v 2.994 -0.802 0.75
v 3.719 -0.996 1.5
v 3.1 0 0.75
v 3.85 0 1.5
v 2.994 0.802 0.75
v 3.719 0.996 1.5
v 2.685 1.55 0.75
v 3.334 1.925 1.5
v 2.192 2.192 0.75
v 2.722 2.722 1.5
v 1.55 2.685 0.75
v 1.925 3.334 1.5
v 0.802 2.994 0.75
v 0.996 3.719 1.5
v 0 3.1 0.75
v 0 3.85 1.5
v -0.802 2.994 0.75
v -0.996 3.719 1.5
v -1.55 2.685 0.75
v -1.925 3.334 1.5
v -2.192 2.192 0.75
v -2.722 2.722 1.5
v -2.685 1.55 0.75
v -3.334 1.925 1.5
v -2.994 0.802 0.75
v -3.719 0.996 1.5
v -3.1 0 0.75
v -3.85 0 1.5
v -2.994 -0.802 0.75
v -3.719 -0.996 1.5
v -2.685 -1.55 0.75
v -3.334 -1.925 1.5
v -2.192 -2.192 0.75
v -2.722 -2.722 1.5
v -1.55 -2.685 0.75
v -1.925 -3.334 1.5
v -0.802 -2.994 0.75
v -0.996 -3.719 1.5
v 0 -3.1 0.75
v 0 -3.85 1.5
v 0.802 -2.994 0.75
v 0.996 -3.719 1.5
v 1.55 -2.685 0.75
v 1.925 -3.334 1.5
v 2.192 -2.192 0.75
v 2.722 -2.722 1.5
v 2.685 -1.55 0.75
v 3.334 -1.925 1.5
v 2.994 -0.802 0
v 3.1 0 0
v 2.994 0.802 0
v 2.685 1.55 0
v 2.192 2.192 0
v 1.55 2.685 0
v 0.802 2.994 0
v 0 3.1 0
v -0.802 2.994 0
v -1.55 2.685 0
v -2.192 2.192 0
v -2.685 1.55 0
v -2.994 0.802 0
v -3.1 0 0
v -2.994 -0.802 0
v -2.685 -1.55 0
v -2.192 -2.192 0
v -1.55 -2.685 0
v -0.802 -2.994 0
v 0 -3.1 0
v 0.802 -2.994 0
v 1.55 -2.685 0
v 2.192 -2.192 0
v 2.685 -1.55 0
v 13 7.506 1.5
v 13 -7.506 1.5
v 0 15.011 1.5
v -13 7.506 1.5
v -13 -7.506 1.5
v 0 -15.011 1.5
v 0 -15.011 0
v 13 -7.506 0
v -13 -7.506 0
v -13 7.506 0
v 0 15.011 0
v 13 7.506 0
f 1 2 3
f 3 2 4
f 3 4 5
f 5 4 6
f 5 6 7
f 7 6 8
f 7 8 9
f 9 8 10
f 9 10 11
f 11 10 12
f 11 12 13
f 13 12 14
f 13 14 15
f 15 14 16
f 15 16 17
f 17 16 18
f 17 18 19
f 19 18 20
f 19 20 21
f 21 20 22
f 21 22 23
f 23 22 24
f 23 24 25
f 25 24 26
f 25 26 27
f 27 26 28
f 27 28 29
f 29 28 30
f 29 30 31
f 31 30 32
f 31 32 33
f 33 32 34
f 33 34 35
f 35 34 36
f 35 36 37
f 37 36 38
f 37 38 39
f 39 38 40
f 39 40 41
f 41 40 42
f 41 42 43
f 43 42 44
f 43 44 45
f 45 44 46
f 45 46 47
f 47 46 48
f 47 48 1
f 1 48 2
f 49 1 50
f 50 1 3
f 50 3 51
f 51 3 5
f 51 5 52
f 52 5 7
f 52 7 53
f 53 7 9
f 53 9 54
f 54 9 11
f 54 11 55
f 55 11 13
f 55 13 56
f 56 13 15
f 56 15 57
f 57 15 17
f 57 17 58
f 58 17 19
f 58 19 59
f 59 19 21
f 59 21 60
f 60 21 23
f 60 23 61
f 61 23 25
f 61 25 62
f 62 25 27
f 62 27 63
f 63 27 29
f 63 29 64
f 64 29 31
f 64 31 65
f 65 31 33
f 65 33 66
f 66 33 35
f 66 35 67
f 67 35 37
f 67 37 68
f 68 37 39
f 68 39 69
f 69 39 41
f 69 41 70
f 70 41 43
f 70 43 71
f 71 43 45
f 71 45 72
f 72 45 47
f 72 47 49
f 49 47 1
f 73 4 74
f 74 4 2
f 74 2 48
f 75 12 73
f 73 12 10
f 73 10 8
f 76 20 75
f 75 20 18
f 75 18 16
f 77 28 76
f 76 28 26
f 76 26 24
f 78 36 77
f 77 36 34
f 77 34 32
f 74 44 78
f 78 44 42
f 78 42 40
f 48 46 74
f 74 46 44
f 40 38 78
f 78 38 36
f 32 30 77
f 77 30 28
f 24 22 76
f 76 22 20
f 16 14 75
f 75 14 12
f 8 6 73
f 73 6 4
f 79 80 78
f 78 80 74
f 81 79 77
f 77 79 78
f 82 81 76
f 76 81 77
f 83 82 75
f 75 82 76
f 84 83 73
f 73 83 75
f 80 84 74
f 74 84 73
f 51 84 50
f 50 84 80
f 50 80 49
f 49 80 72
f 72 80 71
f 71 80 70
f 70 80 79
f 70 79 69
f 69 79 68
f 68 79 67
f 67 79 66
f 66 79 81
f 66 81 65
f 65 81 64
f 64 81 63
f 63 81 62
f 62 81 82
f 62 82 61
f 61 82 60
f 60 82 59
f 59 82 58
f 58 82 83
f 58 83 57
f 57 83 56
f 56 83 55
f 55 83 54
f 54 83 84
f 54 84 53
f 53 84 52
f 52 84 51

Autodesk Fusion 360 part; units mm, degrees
sketch "Sketch1" plane through (0, 0, 0) normal (0, 0, 1) x (1, 0, 0)
  line L0 (13, 7.5056) -> (0, 15.0111)
  line L1 (0, 15.0111) -> (-13, 7.5056)
  line L2 (-13, 7.5056) -> (-13, -7.5056)
  line L3 (-13, -7.5056) -> (0, -15.0111)
  line L4 (0, -15.0111) -> (13, -7.5056)
  line L5 (13, -7.5056) -> (13, 7.5056)
  dimension "d1" = 13
extrude "Extrude1" add sketch "Sketch1" along normal blind 1.5
sketch "Sketch2" plane through (0, 0, 1.5) normal (0, 0, 1) x (-1, 0, 0)
  line L0 (-13, 7.5056) -> (-13, -7.5056)
  line L1 (-13, -7.5056) -> (0, -15.0111)
  line L2 (0, -15.0111) -> (13, -7.5056)
  line L3 (13, -7.5056) -> (13, 7.5056)
  line L4 (13, 7.5056) -> (0, 15.0111)
  line L5 (0, 15.0111) -> (-13, 7.5056)
  circle A0 centre (0, 0) radius 3.1
  dimension "d4" = 6.2
extrude "Extrude2" cut sketch "Sketch2" against normal blind 13 contours A0
chamfer "Chamfer1" distance 0.75 angle 45 1 edges at (2.8902, -1.121, 1.5)
